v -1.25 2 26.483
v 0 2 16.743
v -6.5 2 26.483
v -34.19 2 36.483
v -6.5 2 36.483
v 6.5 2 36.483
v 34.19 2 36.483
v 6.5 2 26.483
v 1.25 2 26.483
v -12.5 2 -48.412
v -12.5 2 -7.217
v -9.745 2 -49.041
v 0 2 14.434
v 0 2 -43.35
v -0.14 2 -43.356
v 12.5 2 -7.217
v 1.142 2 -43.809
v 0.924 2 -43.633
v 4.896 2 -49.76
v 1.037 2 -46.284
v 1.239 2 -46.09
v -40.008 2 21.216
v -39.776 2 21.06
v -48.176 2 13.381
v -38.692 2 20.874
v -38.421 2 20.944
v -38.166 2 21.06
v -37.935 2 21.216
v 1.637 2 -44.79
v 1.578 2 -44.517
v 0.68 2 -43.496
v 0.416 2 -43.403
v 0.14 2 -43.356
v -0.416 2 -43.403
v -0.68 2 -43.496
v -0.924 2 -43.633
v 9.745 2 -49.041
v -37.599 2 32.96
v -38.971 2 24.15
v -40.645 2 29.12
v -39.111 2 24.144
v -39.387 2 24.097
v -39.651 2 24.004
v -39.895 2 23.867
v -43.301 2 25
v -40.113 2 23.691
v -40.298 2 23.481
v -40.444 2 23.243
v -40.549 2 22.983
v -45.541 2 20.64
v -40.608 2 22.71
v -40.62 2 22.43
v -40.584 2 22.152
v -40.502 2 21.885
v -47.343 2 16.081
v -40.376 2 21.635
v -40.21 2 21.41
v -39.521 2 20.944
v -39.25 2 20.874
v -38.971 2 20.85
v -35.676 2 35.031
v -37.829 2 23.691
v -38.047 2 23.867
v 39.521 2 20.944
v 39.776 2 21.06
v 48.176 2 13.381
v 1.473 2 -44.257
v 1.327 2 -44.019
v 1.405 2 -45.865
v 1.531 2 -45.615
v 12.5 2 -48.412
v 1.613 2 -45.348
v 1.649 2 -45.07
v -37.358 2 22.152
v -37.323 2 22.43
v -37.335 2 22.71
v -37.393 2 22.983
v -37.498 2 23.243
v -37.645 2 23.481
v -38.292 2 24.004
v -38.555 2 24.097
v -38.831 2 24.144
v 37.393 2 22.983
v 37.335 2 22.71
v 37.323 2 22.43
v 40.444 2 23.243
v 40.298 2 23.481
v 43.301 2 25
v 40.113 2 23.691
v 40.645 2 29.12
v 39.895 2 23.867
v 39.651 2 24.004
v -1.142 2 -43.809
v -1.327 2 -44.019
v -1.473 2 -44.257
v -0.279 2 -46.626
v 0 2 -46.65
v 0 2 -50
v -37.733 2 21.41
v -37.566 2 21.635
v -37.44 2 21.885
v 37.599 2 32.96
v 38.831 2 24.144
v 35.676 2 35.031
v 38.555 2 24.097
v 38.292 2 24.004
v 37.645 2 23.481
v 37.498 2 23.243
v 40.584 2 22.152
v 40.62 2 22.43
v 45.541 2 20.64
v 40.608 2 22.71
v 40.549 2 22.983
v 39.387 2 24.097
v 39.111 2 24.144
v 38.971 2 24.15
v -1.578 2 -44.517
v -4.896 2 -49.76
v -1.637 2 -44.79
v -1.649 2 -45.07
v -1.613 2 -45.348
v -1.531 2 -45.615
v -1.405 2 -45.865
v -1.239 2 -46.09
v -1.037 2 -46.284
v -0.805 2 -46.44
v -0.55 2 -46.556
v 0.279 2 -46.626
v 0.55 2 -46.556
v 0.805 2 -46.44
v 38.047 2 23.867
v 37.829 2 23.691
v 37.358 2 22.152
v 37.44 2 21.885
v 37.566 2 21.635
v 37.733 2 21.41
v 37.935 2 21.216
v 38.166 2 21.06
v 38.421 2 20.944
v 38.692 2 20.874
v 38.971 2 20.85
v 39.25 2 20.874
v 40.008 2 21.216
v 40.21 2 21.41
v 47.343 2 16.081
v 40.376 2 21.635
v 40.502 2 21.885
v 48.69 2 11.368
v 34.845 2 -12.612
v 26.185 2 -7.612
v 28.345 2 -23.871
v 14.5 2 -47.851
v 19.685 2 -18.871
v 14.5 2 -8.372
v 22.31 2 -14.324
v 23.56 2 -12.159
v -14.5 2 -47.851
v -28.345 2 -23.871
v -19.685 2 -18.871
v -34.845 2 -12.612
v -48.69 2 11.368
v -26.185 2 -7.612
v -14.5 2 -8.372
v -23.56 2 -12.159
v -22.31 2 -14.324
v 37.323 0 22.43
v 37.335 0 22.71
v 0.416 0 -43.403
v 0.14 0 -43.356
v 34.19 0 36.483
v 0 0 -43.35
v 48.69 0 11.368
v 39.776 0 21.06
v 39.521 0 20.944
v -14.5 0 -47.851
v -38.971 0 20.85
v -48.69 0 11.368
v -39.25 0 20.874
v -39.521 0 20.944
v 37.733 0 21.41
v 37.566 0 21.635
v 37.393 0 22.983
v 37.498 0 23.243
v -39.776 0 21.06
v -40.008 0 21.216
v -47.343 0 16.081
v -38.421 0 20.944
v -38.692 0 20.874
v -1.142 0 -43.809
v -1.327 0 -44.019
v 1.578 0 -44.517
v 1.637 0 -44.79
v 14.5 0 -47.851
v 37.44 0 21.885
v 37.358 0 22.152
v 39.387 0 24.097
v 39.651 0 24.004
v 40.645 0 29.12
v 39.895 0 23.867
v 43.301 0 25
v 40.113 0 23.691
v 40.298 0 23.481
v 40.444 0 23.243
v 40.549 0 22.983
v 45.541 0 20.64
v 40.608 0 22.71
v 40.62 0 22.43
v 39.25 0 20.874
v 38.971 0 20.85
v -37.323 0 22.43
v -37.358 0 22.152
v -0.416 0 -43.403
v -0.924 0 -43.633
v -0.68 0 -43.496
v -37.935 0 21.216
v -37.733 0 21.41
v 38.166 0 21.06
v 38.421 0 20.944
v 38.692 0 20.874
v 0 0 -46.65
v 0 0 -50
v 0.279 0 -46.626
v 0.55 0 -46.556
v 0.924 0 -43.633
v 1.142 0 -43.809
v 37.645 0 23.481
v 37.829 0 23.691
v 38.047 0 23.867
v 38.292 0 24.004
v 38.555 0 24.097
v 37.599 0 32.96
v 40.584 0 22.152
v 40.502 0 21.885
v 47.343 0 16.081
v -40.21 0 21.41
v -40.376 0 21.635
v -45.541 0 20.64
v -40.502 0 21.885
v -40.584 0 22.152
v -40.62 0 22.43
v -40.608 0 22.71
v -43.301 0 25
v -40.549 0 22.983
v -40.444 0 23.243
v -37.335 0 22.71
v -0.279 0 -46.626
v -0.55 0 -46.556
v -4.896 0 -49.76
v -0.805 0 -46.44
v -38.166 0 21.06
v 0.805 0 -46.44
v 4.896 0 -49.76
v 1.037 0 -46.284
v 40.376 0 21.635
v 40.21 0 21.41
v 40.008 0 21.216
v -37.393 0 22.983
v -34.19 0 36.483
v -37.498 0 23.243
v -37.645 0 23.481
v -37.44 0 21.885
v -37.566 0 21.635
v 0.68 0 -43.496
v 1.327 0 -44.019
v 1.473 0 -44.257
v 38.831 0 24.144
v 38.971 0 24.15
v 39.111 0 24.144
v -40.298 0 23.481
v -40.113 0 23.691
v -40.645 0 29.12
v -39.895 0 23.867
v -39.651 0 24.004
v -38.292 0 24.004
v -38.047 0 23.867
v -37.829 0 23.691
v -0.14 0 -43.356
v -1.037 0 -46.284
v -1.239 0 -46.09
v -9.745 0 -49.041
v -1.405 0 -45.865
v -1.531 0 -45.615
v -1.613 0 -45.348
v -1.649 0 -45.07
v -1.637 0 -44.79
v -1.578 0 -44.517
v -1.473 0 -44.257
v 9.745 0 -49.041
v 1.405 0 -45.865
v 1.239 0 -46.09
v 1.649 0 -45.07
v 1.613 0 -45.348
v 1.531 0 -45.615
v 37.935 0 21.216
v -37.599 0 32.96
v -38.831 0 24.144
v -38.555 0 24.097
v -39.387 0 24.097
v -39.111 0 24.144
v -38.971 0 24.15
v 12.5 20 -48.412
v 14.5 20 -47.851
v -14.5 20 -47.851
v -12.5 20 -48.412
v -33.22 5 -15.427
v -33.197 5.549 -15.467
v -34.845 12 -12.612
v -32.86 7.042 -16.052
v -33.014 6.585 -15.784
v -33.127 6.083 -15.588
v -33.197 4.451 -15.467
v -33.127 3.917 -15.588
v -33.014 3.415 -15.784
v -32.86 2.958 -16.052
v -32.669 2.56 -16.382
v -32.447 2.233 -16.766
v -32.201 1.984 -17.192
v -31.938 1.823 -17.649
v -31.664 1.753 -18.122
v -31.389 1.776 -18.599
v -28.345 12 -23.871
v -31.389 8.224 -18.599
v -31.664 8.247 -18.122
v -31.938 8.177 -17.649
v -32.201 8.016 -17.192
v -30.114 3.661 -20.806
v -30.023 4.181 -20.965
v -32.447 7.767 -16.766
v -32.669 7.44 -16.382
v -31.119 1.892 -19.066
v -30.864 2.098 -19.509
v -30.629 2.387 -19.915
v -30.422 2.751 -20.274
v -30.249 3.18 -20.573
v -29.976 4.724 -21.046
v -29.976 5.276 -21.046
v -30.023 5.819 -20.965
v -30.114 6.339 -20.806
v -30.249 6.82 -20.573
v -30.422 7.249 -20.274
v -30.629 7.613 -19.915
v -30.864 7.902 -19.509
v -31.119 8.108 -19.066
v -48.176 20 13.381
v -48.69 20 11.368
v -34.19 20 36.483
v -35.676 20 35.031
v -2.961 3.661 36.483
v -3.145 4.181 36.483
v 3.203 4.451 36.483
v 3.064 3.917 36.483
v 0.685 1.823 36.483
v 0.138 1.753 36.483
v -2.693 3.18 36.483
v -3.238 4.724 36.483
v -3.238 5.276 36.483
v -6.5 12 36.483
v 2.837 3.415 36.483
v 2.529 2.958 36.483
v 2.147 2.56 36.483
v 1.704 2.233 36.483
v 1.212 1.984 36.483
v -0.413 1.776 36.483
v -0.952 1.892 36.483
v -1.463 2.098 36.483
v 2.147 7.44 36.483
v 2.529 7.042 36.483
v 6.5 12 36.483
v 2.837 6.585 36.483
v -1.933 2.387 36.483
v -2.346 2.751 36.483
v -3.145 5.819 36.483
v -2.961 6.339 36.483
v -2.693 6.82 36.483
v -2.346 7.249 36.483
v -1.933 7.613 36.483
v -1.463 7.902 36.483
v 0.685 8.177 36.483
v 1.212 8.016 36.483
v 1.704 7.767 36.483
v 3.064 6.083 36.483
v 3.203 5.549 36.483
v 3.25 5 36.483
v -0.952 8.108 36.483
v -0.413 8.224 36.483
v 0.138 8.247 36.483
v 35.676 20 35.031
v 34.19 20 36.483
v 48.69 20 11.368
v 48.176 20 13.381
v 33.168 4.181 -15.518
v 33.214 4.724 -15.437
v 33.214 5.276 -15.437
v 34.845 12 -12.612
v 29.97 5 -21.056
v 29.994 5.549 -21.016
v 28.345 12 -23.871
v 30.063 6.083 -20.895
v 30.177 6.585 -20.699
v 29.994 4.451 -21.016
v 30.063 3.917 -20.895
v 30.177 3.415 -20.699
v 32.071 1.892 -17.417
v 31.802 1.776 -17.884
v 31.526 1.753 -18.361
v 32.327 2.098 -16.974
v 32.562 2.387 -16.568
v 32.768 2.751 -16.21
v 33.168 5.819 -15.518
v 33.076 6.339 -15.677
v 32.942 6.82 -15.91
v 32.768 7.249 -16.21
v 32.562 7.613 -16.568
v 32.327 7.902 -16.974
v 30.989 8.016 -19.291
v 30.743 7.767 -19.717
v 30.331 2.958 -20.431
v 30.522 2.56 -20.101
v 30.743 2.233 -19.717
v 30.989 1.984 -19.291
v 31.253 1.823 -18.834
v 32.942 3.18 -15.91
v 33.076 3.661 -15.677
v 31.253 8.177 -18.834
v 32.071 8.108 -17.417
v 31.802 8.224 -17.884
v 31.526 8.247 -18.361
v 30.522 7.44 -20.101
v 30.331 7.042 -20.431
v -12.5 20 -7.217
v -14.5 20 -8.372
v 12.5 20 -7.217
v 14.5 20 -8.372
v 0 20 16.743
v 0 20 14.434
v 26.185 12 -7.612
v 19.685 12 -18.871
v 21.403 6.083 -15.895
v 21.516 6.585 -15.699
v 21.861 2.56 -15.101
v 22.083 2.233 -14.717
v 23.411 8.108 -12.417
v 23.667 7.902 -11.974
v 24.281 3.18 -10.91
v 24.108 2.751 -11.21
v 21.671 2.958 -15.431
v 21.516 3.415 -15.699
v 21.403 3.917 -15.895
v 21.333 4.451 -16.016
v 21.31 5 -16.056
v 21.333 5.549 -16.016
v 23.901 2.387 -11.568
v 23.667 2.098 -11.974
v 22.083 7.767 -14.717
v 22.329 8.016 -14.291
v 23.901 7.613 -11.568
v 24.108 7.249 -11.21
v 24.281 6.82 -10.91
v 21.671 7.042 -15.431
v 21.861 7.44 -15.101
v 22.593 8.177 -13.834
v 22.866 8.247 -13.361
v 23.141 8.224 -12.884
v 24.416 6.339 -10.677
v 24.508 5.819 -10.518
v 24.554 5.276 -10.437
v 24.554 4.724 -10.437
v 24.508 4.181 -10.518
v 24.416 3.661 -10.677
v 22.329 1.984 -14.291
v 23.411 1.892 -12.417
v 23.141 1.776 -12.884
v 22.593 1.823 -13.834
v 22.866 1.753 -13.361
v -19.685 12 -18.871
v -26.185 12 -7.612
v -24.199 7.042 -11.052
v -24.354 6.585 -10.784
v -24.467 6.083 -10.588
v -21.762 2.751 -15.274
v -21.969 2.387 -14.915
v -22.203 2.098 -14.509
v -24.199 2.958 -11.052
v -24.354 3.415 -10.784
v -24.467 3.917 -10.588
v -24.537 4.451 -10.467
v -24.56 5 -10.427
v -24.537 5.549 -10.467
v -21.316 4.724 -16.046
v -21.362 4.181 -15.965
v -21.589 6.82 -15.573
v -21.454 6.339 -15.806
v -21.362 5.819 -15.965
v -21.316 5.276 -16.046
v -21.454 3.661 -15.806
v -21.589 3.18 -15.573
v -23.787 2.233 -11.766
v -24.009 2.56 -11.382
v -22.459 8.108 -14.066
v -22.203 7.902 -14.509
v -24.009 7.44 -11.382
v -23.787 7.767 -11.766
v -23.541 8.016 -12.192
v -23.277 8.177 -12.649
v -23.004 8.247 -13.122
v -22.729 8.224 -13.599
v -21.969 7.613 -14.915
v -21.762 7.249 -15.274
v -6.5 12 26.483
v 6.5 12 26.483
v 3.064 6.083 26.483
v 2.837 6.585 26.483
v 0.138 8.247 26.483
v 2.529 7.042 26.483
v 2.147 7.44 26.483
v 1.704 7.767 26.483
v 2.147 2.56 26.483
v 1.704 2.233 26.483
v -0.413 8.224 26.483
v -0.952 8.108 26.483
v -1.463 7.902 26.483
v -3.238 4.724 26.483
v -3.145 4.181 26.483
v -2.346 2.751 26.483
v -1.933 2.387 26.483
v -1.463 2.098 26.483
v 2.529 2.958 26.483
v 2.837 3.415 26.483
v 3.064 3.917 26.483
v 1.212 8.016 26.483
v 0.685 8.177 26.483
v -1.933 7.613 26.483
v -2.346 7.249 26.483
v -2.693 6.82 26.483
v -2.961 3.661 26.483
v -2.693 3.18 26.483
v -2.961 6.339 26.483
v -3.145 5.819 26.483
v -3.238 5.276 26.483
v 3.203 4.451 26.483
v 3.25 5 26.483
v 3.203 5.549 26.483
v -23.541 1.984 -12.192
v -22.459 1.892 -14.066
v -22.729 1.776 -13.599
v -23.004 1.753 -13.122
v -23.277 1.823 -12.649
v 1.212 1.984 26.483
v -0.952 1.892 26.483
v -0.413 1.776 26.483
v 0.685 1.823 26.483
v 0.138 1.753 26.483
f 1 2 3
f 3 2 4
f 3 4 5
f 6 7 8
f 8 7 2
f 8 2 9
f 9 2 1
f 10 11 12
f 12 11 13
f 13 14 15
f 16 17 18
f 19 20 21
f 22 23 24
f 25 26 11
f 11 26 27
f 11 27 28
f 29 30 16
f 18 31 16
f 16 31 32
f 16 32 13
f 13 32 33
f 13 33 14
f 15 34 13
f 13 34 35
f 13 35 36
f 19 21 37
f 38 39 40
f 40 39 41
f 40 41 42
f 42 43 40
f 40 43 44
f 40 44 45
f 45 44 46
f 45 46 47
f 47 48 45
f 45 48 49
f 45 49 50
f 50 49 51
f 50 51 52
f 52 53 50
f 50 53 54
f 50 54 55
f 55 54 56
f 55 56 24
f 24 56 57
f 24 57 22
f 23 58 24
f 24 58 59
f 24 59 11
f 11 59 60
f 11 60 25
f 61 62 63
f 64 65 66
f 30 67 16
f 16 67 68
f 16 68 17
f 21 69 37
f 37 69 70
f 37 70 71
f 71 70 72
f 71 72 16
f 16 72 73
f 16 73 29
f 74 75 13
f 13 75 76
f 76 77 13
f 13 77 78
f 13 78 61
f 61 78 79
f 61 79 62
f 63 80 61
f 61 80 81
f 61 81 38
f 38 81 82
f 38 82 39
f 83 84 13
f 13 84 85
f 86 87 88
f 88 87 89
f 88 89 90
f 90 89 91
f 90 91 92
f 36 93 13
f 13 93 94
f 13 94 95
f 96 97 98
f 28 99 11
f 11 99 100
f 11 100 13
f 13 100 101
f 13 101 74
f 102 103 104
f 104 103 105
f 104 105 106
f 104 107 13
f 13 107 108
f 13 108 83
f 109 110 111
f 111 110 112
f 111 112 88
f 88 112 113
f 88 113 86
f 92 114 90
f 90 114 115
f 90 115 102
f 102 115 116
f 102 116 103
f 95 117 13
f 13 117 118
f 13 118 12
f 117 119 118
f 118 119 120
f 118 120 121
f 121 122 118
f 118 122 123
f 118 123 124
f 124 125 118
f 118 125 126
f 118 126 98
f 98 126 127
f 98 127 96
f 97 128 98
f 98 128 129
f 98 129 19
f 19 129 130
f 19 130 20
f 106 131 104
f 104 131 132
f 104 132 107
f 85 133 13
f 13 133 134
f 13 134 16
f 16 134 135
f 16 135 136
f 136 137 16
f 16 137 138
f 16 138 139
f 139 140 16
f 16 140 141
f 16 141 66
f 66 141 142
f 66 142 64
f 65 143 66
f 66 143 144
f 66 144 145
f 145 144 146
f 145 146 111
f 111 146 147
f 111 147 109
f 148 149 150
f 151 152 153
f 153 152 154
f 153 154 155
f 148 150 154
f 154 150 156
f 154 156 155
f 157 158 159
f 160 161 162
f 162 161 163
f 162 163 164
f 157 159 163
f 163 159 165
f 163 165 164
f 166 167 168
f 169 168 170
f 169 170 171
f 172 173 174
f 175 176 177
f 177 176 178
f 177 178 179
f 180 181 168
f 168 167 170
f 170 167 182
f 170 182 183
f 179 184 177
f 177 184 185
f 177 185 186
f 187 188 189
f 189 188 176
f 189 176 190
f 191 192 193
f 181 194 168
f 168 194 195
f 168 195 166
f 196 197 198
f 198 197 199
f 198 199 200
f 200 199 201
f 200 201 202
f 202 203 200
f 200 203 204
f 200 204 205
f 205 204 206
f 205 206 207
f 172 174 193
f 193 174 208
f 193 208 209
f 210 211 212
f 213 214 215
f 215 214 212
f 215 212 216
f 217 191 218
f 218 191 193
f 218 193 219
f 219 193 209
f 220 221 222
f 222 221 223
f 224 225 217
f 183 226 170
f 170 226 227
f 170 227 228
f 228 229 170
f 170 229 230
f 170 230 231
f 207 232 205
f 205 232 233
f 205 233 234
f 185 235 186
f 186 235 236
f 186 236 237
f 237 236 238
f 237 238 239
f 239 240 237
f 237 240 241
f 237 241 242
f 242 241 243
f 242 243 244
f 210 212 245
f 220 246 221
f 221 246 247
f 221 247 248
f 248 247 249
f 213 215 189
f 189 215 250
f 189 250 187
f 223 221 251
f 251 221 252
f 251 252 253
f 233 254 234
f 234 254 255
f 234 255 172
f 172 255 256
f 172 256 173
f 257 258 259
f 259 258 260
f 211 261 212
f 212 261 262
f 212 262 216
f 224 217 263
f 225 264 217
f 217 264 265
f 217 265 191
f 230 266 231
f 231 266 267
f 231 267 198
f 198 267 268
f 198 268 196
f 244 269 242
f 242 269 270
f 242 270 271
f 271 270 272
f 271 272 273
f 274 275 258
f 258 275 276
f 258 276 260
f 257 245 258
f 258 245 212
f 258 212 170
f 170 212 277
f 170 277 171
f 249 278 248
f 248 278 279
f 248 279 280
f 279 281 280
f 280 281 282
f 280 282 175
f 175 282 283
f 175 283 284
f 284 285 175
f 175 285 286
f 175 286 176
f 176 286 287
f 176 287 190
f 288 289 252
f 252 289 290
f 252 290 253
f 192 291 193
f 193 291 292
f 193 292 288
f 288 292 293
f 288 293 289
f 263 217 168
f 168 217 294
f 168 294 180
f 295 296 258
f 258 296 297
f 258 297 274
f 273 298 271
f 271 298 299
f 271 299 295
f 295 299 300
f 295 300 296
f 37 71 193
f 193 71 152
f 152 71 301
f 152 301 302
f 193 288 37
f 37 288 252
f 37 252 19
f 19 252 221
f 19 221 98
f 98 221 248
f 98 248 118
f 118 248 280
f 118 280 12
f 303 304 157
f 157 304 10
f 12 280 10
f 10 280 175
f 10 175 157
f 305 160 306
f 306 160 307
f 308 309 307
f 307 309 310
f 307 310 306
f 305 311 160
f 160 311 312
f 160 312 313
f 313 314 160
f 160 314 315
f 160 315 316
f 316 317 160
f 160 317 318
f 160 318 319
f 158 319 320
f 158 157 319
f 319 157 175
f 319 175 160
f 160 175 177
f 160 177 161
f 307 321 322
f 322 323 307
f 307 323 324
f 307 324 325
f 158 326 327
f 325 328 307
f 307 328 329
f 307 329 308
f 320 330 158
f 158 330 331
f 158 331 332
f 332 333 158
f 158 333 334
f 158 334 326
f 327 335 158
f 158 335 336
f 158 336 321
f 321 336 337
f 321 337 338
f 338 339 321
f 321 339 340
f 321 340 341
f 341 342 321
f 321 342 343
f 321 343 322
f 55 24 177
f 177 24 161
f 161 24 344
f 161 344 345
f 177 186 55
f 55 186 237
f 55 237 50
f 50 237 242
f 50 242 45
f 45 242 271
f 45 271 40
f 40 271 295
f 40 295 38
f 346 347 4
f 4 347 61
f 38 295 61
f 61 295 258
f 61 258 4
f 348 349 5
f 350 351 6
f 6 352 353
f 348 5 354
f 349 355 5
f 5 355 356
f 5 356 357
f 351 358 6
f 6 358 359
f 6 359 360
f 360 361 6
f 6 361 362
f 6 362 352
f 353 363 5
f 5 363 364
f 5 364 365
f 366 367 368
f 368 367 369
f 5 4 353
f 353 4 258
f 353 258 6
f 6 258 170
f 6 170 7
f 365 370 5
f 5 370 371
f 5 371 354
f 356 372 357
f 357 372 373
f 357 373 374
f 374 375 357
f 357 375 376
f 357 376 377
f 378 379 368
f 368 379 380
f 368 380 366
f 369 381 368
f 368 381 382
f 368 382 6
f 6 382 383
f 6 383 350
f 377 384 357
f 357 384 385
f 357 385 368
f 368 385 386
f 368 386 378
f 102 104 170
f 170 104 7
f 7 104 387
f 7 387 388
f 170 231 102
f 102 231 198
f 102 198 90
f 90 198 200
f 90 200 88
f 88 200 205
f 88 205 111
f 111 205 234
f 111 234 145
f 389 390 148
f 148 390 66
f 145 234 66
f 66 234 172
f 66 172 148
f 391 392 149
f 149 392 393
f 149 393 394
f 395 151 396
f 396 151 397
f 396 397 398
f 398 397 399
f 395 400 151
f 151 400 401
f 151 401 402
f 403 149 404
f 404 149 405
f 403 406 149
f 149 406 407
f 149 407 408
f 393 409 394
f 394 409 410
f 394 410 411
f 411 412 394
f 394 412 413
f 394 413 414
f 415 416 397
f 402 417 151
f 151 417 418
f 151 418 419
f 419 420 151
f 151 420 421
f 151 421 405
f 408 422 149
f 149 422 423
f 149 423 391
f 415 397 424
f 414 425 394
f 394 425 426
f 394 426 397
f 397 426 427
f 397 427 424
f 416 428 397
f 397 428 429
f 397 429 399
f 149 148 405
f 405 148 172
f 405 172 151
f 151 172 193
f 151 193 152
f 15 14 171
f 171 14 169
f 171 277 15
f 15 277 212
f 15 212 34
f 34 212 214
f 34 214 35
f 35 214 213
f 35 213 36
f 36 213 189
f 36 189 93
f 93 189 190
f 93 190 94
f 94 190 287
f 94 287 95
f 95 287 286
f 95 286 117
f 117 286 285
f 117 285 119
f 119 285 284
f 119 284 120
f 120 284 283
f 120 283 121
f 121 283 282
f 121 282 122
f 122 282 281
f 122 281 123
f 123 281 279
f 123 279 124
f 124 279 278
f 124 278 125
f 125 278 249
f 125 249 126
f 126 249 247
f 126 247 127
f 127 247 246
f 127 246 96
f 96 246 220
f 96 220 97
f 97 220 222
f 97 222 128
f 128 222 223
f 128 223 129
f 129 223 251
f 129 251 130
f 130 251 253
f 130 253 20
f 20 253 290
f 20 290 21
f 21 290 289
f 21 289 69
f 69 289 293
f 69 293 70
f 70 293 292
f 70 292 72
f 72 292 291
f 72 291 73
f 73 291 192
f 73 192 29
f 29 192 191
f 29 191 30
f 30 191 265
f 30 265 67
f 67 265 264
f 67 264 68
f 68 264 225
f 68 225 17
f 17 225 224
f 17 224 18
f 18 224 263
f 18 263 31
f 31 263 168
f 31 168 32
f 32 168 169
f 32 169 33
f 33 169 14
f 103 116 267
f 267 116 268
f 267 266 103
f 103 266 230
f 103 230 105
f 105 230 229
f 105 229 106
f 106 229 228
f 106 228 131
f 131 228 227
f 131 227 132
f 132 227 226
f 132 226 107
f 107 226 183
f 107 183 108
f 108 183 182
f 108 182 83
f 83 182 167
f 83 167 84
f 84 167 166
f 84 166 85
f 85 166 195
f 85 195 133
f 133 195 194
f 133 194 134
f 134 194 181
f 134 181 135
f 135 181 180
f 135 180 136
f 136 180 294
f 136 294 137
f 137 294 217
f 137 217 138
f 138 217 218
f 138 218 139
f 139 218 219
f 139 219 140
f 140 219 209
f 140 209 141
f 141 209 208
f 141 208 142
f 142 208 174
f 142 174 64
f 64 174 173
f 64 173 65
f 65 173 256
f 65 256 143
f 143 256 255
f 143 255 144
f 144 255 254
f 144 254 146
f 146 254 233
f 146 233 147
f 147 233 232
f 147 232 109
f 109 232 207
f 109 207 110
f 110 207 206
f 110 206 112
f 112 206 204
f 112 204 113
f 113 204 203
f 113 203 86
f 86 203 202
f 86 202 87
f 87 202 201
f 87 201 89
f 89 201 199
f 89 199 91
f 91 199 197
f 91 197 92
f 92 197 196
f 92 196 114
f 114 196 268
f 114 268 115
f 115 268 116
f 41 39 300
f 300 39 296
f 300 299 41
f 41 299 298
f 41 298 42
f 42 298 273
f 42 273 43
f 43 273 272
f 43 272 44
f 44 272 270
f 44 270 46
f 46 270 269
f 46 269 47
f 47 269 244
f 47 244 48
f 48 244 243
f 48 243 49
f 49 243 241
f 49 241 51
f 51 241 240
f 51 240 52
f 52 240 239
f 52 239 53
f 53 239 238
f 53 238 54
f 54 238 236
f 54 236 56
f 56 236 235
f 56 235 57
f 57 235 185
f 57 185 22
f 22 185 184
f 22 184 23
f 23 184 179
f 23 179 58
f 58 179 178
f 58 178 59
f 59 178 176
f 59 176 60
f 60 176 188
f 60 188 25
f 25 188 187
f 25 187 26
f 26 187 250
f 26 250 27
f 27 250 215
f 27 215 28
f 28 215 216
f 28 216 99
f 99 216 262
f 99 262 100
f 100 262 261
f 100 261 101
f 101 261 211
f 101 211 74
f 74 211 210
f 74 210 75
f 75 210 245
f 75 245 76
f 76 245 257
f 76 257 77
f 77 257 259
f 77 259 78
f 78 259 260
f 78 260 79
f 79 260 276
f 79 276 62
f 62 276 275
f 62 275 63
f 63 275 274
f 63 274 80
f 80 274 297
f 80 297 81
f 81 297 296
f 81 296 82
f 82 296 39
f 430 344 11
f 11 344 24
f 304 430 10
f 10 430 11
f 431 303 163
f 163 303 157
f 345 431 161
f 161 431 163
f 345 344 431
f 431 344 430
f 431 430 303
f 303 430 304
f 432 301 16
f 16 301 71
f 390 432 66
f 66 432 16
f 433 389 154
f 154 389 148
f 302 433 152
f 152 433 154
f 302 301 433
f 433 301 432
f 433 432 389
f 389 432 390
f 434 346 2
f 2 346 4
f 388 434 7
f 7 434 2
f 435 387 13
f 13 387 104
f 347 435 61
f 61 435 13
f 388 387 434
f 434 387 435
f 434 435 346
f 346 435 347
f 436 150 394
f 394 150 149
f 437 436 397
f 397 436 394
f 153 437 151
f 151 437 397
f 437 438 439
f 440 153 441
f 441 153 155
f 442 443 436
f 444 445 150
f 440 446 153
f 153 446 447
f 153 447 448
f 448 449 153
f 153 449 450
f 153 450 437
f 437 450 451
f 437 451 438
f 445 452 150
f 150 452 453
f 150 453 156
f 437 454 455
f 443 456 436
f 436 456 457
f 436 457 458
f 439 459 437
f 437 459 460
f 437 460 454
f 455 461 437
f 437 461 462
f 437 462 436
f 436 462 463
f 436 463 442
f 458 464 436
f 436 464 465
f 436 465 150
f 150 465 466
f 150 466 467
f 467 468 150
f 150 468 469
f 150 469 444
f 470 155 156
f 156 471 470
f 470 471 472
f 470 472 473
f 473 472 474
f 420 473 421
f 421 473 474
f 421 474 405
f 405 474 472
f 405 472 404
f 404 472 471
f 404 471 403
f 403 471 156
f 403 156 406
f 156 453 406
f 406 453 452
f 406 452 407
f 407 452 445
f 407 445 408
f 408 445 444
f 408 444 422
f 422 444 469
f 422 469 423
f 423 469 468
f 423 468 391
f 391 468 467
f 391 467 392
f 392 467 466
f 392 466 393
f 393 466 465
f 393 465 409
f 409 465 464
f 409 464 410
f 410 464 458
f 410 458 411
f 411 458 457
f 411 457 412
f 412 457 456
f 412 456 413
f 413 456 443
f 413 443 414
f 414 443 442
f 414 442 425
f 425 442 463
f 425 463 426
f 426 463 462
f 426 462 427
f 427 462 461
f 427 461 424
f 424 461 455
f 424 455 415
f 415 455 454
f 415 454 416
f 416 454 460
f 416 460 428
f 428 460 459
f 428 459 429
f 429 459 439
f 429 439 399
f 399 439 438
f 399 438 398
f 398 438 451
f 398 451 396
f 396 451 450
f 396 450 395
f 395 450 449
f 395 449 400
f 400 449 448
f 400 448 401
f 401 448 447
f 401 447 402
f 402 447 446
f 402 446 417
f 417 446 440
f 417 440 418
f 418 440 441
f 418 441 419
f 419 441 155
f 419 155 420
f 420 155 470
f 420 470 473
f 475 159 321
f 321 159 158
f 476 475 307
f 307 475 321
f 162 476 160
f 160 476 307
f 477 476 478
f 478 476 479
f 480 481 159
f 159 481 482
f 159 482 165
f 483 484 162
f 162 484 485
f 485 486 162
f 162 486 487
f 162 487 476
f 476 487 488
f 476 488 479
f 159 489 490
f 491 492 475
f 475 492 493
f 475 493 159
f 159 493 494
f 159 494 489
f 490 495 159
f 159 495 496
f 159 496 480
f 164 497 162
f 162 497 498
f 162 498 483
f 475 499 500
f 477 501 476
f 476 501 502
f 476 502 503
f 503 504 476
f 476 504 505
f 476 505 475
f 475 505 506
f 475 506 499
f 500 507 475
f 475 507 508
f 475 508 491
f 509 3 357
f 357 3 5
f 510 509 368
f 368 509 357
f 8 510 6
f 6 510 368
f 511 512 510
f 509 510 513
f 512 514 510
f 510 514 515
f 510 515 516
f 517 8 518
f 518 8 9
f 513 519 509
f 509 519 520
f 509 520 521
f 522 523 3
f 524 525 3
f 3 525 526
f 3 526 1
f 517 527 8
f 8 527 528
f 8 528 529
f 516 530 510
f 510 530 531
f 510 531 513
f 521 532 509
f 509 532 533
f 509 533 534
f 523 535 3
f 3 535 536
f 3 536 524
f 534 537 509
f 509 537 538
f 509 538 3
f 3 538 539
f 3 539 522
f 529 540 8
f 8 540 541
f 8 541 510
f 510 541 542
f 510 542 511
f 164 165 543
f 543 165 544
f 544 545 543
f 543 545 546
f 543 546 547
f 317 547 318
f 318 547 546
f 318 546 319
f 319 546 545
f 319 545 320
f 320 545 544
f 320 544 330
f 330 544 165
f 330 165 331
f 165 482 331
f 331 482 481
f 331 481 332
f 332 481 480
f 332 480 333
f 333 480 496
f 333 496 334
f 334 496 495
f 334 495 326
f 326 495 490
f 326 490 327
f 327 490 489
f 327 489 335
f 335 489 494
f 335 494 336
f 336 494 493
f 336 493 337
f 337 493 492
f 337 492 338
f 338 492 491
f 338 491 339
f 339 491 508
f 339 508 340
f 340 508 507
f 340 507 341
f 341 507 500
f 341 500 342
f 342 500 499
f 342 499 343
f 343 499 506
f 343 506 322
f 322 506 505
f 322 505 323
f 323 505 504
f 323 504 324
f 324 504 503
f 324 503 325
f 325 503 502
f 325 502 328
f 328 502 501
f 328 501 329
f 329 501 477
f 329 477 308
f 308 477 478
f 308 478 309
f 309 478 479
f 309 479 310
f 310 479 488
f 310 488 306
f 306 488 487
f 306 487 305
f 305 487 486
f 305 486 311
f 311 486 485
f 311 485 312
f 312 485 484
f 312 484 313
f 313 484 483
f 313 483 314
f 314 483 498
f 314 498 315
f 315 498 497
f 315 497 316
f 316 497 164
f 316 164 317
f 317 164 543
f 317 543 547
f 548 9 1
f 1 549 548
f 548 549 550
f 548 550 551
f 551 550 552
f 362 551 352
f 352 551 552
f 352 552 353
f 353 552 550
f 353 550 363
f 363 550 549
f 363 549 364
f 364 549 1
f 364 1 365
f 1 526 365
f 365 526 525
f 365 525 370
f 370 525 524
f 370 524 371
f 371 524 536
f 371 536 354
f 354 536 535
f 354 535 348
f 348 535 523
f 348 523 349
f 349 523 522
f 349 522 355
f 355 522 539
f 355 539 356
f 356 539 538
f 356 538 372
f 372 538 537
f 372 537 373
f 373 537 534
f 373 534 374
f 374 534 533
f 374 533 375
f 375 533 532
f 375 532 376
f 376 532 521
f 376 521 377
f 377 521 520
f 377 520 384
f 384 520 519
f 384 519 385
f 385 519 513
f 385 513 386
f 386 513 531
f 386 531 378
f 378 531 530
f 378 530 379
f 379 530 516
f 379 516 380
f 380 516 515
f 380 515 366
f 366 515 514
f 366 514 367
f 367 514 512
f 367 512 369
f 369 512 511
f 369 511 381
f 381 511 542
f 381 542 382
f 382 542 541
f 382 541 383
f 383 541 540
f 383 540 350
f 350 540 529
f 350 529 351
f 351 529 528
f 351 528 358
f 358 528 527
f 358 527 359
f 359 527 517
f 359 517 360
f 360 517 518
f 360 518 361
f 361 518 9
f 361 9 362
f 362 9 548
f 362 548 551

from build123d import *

# Parameters (mm, degrees)
SKETCH1_R           = 1.65
BOSS_EXTRUDE1_DEPTH = 2
BOSS_EXTRUDE2_DEPTH = 18
SKETCH3_W           = 13
SKETCH3_H           = 10
BOSS_EXTRUDE3_DEPTH = 10
SKETCH4_R           = 3.25
CUT_EXTRUDE1_DEPTH  = 10
CIRPATTERN1_COUNT   = 3


with BuildPart() as part:
    # Sketch1 → Boss-Extrude1 (new body)
    with BuildSketch(Plane(origin=(0, 0, 0), x_dir=(1, 0, 0), z_dir=(0, 1, 0))):
        with BuildLine():
            Line((14.5, 47.85133227), (48.690469351, -11.36829778))
            ThreePointArc((48.690469351, -11.36829778), (43.301270189, -25), (34.190469351, -36.48303449))
            Line((34.190469351, -36.48303449), (-34.190469351, -36.48303449))
            ThreePointArc((-34.190469351, -36.48303449), (-43.301270189, -25), (-48.690469351, -11.36829778))
            Line((-48.690469351, -11.36829778), (-14.5, 47.85133227))
            ThreePointArc((-14.5, 47.85133227), (0, 50), (14.5, 47.85133227))
        make_face()
        with Locations(Location((0, 45, 0), (0, 0, 270))):
            Circle(SKETCH1_R, mode=Mode.SUBTRACT)
        with Locations(Location((38.97114317, -22.5, 0), (0, 0, 270))):
            Circle(SKETCH1_R, mode=Mode.SUBTRACT)
        with Locations(Location((-38.97114317, -22.5, 0), (0, 0, 270))):
            Circle(SKETCH1_R, mode=Mode.SUBTRACT)
    extrude(amount=BOSS_EXTRUDE1_DEPTH)

    # Sketch2 → Boss-Extrude2 (add)
    with BuildSketch(Plane(origin=(0, 2, 0), x_dir=(1, 0, 0), z_dir=(0, 1, 0))):
        with BuildLine():
            Line((-14.5, 47.85133227), (-14.5, 8.371578903))
            Line((-14.5, 8.371578903), (-48.690469351, -11.36829778))
            ThreePointArc((-48.690469351, -11.36829778), (-48.443824061, -12.377233549), (-48.176274578, -13.380828366))
            Line((-48.176274578, -13.380828366), (-12.5, 7.216878365))
            Line((-12.5, 7.216878365), (-12.5, 48.412291828))
            ThreePointArc((-12.5, 48.412291828), (-13.502913349, 48.142199068), (-14.5, 47.85133227))
        make_face()
        with BuildLine():
            Line((14.5, 47.85133227), (14.5, 8.371578903))
            Line((14.5, 8.371578903), (48.690469351, -11.36829778))
            ThreePointArc((48.690469351, -11.36829778), (48.443824061, -12.377233549), (48.176274578, -13.380828366))
            Line((48.176274578, -13.380828366), (12.5, 7.216878365))
            Line((12.5, 7.216878365), (12.5, 48.412291828))
            ThreePointArc((12.5, 48.412291828), (13.502913349, 48.142199068), (14.5, 47.85133227))
        make_face()
        with BuildLine():
            Line((-34.190469351, -36.48303449), (0, -16.743157806))
            Line((0, -16.743157806), (34.190469351, -36.48303449))
            ThreePointArc((34.190469351, -36.48303449), (34.940910712, -35.764965519), (35.676274578, -35.031463461))
            Line((35.676274578, -35.031463461), (0, -14.43375673))
            Line((0, -14.43375673), (-35.676274578, -35.031463461))
            ThreePointArc((-35.676274578, -35.031463461), (-34.940910712, -35.764965519), (-34.190469351, -36.48303449))
        make_face()
    extrude(amount=BOSS_EXTRUDE2_DEPTH)

    # Sketch3 → Boss-Extrude3 (add)
    with BuildSketch(Plane(origin=(31.595234675, 0, -18.241517245), x_dir=(-0.5000000000000003, 0, -0.8660254037844386), z_dir=(0.8660254037844385, 0, -0.5000000000000002))):
        with Locations((0, 7)):
            Rectangle(SKETCH3_W, SKETCH3_H)
    boss_extrude3 = extrude(amount=-BOSS_EXTRUDE3_DEPTH)

    # Sketch4 → Cut-Extrude1 (cut)
    with BuildSketch(Plane(origin=(31.595234675, 0, -18.241517245), x_dir=(-0.5000000000000003, 0, -0.8660254037844385), z_dir=(0.8660254037844385, 0, -0.5000000000000003))):
        with Locations((0, 5)):
            Circle(SKETCH4_R)
    cut_extrude1 = extrude(amount=-CUT_EXTRUDE1_DEPTH, mode=Mode.SUBTRACT)

    # CirPattern1: Boss-Extrude3, Cut-Extrude1 ×3 about axis
    cirpattern1_axis = Axis((0, 0, 0), (0, 1, 0))
    add([boss_extrude3.rotate(cirpattern1_axis, i * 360 / CIRPATTERN1_COUNT) for i in range(1, CIRPATTERN1_COUNT)])
    add([cut_extrude1.rotate(cirpattern1_axis, i * 360 / CIRPATTERN1_COUNT) for i in range(1, CIRPATTERN1_COUNT)], mode=Mode.SUBTRACT)


solid = part.part
